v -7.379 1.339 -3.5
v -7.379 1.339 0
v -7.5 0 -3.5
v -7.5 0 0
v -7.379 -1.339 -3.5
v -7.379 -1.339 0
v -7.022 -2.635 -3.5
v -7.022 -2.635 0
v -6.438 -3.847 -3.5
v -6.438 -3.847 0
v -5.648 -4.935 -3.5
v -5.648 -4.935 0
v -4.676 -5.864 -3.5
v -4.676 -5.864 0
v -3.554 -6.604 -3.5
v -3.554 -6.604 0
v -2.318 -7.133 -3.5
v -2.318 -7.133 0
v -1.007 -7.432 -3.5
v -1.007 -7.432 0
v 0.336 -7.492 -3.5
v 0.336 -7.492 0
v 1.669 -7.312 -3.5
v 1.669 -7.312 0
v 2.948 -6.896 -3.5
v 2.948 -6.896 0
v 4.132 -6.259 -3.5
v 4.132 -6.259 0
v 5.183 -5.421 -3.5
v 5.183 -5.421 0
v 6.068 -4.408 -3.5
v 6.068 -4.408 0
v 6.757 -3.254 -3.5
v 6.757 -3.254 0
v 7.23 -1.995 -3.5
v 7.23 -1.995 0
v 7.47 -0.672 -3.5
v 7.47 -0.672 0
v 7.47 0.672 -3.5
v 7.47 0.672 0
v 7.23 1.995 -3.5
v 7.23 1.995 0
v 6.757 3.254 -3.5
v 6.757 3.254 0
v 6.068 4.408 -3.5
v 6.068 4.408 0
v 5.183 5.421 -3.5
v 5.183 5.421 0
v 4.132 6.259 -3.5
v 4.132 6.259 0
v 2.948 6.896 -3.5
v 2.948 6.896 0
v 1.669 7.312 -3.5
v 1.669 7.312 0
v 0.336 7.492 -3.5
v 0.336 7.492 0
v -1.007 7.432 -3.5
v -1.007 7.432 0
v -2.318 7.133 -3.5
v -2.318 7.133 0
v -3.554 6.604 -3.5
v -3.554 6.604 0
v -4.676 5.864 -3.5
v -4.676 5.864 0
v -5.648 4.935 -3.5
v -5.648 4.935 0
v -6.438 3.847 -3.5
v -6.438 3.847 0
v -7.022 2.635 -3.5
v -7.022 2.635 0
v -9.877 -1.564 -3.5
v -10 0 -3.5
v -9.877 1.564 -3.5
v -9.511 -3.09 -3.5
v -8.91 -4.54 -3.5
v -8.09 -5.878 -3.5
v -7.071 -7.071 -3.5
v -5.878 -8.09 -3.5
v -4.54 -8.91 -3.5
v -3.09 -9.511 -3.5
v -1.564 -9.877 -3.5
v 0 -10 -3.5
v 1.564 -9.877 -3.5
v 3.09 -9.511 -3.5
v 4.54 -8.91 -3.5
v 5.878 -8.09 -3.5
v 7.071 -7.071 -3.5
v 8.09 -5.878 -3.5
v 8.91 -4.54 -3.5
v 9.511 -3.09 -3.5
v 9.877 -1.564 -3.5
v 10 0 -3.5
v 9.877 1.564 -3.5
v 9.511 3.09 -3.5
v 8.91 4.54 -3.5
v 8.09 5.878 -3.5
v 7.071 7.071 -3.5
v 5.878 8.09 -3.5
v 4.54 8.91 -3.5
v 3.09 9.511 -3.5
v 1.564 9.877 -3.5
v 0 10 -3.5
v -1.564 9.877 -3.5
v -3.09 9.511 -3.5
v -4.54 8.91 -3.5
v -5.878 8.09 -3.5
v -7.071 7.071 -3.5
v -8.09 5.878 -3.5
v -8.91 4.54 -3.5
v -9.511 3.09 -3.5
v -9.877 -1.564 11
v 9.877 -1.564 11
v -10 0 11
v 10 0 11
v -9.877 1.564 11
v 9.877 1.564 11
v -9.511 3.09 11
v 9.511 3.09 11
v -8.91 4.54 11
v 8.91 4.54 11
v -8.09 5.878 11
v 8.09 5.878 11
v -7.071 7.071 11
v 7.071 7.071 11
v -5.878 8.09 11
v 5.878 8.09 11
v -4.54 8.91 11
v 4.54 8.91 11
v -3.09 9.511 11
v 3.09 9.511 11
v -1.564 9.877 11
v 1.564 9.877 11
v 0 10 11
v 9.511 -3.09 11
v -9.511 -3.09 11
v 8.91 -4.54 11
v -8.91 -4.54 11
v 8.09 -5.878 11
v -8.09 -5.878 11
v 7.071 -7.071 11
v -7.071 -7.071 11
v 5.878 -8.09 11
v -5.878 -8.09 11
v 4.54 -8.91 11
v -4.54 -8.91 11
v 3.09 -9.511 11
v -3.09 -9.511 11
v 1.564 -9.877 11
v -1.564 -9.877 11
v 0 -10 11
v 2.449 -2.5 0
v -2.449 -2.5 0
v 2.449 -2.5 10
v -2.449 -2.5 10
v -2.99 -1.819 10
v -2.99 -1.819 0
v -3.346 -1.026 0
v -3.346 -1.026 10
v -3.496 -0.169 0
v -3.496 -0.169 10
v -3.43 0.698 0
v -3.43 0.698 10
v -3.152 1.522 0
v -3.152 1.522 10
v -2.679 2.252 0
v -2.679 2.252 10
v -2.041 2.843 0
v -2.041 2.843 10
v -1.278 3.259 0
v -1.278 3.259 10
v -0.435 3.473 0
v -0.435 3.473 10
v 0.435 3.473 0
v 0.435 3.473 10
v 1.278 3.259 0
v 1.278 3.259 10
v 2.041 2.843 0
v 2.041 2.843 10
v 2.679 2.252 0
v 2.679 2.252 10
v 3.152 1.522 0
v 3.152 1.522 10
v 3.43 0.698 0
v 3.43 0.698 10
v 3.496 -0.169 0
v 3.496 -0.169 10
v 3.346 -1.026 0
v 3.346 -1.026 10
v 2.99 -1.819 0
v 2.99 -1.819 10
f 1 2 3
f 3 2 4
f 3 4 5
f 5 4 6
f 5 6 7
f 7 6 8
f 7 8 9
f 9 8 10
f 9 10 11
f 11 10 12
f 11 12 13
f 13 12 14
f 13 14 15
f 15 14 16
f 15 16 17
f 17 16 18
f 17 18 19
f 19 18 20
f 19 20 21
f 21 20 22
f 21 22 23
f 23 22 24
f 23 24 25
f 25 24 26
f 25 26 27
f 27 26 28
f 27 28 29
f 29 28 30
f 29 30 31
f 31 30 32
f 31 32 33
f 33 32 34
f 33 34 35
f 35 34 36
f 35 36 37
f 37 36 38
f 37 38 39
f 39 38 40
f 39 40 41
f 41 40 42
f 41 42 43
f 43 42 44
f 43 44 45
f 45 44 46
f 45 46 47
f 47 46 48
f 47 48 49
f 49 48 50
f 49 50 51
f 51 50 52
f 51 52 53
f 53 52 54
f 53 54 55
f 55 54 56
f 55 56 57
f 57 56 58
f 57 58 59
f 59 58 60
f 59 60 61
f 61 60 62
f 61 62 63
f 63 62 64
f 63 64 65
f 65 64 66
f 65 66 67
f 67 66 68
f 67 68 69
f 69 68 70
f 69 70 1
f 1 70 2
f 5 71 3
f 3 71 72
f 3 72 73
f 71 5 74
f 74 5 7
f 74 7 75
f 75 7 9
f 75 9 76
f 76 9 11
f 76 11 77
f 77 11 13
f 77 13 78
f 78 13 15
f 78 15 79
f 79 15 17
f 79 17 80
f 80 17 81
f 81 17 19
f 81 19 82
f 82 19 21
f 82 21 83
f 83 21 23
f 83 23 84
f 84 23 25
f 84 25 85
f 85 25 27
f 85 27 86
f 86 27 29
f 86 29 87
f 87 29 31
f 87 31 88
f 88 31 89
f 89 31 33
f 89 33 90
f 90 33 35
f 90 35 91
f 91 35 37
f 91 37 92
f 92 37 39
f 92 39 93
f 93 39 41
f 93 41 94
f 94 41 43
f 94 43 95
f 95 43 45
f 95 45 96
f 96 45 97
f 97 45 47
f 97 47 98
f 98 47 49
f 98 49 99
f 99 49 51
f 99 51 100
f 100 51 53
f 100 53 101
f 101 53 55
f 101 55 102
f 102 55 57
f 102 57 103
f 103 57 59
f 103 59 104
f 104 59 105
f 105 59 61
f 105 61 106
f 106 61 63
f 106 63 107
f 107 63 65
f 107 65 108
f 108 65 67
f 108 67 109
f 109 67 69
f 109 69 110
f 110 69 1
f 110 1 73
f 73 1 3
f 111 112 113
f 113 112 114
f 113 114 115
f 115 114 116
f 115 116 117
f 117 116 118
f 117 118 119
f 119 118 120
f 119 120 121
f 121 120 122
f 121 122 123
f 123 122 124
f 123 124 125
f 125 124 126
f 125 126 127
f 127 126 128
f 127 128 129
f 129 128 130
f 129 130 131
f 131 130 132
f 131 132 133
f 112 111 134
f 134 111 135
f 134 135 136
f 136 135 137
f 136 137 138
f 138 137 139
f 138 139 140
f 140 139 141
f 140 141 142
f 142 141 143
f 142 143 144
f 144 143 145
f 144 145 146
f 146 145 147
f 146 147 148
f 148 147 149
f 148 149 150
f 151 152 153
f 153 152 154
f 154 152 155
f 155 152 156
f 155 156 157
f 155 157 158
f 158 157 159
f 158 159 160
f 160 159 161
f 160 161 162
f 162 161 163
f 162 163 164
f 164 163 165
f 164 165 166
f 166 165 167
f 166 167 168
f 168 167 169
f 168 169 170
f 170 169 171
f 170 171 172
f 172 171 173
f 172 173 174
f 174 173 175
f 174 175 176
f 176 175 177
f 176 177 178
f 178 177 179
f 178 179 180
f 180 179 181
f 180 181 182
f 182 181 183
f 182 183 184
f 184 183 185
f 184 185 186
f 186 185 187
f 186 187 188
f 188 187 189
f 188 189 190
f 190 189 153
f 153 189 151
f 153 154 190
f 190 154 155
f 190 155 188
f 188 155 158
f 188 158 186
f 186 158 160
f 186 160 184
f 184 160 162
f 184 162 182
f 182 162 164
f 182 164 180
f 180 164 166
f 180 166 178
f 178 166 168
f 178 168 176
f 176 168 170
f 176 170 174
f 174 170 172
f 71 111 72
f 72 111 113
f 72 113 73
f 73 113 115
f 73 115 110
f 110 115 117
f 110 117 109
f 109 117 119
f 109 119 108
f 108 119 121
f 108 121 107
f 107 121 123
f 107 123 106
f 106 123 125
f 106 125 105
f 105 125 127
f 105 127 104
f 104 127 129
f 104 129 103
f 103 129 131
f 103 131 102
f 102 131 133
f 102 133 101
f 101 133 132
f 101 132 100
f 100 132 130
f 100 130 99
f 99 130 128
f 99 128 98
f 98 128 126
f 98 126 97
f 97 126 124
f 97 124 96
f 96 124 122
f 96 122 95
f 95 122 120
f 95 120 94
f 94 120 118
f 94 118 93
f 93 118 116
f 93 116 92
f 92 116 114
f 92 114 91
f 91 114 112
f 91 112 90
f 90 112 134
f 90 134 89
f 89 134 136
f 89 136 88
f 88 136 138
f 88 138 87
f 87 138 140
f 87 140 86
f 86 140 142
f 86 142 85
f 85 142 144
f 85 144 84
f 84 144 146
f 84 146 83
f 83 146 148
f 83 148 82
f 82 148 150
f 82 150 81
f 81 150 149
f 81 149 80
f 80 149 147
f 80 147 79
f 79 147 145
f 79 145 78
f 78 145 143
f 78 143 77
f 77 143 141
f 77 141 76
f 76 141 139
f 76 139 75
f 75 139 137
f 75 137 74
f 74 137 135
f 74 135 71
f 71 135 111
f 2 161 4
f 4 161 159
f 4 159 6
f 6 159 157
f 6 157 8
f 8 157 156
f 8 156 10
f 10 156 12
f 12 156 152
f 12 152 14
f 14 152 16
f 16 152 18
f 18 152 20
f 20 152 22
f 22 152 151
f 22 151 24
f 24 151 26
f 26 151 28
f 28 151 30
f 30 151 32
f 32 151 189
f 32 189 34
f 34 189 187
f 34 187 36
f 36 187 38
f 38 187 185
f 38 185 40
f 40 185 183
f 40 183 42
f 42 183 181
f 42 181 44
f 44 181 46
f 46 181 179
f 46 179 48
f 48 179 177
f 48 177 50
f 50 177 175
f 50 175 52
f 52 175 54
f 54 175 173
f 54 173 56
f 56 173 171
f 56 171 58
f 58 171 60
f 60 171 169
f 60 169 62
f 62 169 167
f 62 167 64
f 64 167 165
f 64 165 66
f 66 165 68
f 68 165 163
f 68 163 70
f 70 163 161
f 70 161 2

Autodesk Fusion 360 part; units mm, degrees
sketch "Sketch1" plane through (0, 0, 0) normal (0, 0, 1) x (1, 0, 0)
  circle A0 centre (0, 0) radius 10
  circle A1 centre (0, 0) radius 3.5
  line L0 (0, 3.5) -> (0, -2.5)
  line L1 (0, -2.5) -> (2.4495, -2.5)
  line L2 (0, -2.5) -> (-2.4495, -2.5)
  circle A2 centre (0, 0) radius 7.5
  dimension "d1" = 20
  dimension "d2" = 7
extrude "Extrude1" add sketch "Sketch1" along normal blind 12 contours A0 | A1 L0 L1 | A1 L0 L2 | A1 L1 L2 | A2
extrude "Extrude2" cut sketch "Sketch1" along normal blind 10 contours A1 L0 L1 | A1 L0 L2
sketch "Sketch2" plane through (0, 0, 0) normal (0, 0, 1) x (1, 0, 0)
extrude "Extrude3" cut 1 faces at (2.3712, -3.5556, 12) along direction (0, 0, -1) blind 1
extrude "Extrude4" add sketch "Sketch1" against normal blind 3.5 contours A0
